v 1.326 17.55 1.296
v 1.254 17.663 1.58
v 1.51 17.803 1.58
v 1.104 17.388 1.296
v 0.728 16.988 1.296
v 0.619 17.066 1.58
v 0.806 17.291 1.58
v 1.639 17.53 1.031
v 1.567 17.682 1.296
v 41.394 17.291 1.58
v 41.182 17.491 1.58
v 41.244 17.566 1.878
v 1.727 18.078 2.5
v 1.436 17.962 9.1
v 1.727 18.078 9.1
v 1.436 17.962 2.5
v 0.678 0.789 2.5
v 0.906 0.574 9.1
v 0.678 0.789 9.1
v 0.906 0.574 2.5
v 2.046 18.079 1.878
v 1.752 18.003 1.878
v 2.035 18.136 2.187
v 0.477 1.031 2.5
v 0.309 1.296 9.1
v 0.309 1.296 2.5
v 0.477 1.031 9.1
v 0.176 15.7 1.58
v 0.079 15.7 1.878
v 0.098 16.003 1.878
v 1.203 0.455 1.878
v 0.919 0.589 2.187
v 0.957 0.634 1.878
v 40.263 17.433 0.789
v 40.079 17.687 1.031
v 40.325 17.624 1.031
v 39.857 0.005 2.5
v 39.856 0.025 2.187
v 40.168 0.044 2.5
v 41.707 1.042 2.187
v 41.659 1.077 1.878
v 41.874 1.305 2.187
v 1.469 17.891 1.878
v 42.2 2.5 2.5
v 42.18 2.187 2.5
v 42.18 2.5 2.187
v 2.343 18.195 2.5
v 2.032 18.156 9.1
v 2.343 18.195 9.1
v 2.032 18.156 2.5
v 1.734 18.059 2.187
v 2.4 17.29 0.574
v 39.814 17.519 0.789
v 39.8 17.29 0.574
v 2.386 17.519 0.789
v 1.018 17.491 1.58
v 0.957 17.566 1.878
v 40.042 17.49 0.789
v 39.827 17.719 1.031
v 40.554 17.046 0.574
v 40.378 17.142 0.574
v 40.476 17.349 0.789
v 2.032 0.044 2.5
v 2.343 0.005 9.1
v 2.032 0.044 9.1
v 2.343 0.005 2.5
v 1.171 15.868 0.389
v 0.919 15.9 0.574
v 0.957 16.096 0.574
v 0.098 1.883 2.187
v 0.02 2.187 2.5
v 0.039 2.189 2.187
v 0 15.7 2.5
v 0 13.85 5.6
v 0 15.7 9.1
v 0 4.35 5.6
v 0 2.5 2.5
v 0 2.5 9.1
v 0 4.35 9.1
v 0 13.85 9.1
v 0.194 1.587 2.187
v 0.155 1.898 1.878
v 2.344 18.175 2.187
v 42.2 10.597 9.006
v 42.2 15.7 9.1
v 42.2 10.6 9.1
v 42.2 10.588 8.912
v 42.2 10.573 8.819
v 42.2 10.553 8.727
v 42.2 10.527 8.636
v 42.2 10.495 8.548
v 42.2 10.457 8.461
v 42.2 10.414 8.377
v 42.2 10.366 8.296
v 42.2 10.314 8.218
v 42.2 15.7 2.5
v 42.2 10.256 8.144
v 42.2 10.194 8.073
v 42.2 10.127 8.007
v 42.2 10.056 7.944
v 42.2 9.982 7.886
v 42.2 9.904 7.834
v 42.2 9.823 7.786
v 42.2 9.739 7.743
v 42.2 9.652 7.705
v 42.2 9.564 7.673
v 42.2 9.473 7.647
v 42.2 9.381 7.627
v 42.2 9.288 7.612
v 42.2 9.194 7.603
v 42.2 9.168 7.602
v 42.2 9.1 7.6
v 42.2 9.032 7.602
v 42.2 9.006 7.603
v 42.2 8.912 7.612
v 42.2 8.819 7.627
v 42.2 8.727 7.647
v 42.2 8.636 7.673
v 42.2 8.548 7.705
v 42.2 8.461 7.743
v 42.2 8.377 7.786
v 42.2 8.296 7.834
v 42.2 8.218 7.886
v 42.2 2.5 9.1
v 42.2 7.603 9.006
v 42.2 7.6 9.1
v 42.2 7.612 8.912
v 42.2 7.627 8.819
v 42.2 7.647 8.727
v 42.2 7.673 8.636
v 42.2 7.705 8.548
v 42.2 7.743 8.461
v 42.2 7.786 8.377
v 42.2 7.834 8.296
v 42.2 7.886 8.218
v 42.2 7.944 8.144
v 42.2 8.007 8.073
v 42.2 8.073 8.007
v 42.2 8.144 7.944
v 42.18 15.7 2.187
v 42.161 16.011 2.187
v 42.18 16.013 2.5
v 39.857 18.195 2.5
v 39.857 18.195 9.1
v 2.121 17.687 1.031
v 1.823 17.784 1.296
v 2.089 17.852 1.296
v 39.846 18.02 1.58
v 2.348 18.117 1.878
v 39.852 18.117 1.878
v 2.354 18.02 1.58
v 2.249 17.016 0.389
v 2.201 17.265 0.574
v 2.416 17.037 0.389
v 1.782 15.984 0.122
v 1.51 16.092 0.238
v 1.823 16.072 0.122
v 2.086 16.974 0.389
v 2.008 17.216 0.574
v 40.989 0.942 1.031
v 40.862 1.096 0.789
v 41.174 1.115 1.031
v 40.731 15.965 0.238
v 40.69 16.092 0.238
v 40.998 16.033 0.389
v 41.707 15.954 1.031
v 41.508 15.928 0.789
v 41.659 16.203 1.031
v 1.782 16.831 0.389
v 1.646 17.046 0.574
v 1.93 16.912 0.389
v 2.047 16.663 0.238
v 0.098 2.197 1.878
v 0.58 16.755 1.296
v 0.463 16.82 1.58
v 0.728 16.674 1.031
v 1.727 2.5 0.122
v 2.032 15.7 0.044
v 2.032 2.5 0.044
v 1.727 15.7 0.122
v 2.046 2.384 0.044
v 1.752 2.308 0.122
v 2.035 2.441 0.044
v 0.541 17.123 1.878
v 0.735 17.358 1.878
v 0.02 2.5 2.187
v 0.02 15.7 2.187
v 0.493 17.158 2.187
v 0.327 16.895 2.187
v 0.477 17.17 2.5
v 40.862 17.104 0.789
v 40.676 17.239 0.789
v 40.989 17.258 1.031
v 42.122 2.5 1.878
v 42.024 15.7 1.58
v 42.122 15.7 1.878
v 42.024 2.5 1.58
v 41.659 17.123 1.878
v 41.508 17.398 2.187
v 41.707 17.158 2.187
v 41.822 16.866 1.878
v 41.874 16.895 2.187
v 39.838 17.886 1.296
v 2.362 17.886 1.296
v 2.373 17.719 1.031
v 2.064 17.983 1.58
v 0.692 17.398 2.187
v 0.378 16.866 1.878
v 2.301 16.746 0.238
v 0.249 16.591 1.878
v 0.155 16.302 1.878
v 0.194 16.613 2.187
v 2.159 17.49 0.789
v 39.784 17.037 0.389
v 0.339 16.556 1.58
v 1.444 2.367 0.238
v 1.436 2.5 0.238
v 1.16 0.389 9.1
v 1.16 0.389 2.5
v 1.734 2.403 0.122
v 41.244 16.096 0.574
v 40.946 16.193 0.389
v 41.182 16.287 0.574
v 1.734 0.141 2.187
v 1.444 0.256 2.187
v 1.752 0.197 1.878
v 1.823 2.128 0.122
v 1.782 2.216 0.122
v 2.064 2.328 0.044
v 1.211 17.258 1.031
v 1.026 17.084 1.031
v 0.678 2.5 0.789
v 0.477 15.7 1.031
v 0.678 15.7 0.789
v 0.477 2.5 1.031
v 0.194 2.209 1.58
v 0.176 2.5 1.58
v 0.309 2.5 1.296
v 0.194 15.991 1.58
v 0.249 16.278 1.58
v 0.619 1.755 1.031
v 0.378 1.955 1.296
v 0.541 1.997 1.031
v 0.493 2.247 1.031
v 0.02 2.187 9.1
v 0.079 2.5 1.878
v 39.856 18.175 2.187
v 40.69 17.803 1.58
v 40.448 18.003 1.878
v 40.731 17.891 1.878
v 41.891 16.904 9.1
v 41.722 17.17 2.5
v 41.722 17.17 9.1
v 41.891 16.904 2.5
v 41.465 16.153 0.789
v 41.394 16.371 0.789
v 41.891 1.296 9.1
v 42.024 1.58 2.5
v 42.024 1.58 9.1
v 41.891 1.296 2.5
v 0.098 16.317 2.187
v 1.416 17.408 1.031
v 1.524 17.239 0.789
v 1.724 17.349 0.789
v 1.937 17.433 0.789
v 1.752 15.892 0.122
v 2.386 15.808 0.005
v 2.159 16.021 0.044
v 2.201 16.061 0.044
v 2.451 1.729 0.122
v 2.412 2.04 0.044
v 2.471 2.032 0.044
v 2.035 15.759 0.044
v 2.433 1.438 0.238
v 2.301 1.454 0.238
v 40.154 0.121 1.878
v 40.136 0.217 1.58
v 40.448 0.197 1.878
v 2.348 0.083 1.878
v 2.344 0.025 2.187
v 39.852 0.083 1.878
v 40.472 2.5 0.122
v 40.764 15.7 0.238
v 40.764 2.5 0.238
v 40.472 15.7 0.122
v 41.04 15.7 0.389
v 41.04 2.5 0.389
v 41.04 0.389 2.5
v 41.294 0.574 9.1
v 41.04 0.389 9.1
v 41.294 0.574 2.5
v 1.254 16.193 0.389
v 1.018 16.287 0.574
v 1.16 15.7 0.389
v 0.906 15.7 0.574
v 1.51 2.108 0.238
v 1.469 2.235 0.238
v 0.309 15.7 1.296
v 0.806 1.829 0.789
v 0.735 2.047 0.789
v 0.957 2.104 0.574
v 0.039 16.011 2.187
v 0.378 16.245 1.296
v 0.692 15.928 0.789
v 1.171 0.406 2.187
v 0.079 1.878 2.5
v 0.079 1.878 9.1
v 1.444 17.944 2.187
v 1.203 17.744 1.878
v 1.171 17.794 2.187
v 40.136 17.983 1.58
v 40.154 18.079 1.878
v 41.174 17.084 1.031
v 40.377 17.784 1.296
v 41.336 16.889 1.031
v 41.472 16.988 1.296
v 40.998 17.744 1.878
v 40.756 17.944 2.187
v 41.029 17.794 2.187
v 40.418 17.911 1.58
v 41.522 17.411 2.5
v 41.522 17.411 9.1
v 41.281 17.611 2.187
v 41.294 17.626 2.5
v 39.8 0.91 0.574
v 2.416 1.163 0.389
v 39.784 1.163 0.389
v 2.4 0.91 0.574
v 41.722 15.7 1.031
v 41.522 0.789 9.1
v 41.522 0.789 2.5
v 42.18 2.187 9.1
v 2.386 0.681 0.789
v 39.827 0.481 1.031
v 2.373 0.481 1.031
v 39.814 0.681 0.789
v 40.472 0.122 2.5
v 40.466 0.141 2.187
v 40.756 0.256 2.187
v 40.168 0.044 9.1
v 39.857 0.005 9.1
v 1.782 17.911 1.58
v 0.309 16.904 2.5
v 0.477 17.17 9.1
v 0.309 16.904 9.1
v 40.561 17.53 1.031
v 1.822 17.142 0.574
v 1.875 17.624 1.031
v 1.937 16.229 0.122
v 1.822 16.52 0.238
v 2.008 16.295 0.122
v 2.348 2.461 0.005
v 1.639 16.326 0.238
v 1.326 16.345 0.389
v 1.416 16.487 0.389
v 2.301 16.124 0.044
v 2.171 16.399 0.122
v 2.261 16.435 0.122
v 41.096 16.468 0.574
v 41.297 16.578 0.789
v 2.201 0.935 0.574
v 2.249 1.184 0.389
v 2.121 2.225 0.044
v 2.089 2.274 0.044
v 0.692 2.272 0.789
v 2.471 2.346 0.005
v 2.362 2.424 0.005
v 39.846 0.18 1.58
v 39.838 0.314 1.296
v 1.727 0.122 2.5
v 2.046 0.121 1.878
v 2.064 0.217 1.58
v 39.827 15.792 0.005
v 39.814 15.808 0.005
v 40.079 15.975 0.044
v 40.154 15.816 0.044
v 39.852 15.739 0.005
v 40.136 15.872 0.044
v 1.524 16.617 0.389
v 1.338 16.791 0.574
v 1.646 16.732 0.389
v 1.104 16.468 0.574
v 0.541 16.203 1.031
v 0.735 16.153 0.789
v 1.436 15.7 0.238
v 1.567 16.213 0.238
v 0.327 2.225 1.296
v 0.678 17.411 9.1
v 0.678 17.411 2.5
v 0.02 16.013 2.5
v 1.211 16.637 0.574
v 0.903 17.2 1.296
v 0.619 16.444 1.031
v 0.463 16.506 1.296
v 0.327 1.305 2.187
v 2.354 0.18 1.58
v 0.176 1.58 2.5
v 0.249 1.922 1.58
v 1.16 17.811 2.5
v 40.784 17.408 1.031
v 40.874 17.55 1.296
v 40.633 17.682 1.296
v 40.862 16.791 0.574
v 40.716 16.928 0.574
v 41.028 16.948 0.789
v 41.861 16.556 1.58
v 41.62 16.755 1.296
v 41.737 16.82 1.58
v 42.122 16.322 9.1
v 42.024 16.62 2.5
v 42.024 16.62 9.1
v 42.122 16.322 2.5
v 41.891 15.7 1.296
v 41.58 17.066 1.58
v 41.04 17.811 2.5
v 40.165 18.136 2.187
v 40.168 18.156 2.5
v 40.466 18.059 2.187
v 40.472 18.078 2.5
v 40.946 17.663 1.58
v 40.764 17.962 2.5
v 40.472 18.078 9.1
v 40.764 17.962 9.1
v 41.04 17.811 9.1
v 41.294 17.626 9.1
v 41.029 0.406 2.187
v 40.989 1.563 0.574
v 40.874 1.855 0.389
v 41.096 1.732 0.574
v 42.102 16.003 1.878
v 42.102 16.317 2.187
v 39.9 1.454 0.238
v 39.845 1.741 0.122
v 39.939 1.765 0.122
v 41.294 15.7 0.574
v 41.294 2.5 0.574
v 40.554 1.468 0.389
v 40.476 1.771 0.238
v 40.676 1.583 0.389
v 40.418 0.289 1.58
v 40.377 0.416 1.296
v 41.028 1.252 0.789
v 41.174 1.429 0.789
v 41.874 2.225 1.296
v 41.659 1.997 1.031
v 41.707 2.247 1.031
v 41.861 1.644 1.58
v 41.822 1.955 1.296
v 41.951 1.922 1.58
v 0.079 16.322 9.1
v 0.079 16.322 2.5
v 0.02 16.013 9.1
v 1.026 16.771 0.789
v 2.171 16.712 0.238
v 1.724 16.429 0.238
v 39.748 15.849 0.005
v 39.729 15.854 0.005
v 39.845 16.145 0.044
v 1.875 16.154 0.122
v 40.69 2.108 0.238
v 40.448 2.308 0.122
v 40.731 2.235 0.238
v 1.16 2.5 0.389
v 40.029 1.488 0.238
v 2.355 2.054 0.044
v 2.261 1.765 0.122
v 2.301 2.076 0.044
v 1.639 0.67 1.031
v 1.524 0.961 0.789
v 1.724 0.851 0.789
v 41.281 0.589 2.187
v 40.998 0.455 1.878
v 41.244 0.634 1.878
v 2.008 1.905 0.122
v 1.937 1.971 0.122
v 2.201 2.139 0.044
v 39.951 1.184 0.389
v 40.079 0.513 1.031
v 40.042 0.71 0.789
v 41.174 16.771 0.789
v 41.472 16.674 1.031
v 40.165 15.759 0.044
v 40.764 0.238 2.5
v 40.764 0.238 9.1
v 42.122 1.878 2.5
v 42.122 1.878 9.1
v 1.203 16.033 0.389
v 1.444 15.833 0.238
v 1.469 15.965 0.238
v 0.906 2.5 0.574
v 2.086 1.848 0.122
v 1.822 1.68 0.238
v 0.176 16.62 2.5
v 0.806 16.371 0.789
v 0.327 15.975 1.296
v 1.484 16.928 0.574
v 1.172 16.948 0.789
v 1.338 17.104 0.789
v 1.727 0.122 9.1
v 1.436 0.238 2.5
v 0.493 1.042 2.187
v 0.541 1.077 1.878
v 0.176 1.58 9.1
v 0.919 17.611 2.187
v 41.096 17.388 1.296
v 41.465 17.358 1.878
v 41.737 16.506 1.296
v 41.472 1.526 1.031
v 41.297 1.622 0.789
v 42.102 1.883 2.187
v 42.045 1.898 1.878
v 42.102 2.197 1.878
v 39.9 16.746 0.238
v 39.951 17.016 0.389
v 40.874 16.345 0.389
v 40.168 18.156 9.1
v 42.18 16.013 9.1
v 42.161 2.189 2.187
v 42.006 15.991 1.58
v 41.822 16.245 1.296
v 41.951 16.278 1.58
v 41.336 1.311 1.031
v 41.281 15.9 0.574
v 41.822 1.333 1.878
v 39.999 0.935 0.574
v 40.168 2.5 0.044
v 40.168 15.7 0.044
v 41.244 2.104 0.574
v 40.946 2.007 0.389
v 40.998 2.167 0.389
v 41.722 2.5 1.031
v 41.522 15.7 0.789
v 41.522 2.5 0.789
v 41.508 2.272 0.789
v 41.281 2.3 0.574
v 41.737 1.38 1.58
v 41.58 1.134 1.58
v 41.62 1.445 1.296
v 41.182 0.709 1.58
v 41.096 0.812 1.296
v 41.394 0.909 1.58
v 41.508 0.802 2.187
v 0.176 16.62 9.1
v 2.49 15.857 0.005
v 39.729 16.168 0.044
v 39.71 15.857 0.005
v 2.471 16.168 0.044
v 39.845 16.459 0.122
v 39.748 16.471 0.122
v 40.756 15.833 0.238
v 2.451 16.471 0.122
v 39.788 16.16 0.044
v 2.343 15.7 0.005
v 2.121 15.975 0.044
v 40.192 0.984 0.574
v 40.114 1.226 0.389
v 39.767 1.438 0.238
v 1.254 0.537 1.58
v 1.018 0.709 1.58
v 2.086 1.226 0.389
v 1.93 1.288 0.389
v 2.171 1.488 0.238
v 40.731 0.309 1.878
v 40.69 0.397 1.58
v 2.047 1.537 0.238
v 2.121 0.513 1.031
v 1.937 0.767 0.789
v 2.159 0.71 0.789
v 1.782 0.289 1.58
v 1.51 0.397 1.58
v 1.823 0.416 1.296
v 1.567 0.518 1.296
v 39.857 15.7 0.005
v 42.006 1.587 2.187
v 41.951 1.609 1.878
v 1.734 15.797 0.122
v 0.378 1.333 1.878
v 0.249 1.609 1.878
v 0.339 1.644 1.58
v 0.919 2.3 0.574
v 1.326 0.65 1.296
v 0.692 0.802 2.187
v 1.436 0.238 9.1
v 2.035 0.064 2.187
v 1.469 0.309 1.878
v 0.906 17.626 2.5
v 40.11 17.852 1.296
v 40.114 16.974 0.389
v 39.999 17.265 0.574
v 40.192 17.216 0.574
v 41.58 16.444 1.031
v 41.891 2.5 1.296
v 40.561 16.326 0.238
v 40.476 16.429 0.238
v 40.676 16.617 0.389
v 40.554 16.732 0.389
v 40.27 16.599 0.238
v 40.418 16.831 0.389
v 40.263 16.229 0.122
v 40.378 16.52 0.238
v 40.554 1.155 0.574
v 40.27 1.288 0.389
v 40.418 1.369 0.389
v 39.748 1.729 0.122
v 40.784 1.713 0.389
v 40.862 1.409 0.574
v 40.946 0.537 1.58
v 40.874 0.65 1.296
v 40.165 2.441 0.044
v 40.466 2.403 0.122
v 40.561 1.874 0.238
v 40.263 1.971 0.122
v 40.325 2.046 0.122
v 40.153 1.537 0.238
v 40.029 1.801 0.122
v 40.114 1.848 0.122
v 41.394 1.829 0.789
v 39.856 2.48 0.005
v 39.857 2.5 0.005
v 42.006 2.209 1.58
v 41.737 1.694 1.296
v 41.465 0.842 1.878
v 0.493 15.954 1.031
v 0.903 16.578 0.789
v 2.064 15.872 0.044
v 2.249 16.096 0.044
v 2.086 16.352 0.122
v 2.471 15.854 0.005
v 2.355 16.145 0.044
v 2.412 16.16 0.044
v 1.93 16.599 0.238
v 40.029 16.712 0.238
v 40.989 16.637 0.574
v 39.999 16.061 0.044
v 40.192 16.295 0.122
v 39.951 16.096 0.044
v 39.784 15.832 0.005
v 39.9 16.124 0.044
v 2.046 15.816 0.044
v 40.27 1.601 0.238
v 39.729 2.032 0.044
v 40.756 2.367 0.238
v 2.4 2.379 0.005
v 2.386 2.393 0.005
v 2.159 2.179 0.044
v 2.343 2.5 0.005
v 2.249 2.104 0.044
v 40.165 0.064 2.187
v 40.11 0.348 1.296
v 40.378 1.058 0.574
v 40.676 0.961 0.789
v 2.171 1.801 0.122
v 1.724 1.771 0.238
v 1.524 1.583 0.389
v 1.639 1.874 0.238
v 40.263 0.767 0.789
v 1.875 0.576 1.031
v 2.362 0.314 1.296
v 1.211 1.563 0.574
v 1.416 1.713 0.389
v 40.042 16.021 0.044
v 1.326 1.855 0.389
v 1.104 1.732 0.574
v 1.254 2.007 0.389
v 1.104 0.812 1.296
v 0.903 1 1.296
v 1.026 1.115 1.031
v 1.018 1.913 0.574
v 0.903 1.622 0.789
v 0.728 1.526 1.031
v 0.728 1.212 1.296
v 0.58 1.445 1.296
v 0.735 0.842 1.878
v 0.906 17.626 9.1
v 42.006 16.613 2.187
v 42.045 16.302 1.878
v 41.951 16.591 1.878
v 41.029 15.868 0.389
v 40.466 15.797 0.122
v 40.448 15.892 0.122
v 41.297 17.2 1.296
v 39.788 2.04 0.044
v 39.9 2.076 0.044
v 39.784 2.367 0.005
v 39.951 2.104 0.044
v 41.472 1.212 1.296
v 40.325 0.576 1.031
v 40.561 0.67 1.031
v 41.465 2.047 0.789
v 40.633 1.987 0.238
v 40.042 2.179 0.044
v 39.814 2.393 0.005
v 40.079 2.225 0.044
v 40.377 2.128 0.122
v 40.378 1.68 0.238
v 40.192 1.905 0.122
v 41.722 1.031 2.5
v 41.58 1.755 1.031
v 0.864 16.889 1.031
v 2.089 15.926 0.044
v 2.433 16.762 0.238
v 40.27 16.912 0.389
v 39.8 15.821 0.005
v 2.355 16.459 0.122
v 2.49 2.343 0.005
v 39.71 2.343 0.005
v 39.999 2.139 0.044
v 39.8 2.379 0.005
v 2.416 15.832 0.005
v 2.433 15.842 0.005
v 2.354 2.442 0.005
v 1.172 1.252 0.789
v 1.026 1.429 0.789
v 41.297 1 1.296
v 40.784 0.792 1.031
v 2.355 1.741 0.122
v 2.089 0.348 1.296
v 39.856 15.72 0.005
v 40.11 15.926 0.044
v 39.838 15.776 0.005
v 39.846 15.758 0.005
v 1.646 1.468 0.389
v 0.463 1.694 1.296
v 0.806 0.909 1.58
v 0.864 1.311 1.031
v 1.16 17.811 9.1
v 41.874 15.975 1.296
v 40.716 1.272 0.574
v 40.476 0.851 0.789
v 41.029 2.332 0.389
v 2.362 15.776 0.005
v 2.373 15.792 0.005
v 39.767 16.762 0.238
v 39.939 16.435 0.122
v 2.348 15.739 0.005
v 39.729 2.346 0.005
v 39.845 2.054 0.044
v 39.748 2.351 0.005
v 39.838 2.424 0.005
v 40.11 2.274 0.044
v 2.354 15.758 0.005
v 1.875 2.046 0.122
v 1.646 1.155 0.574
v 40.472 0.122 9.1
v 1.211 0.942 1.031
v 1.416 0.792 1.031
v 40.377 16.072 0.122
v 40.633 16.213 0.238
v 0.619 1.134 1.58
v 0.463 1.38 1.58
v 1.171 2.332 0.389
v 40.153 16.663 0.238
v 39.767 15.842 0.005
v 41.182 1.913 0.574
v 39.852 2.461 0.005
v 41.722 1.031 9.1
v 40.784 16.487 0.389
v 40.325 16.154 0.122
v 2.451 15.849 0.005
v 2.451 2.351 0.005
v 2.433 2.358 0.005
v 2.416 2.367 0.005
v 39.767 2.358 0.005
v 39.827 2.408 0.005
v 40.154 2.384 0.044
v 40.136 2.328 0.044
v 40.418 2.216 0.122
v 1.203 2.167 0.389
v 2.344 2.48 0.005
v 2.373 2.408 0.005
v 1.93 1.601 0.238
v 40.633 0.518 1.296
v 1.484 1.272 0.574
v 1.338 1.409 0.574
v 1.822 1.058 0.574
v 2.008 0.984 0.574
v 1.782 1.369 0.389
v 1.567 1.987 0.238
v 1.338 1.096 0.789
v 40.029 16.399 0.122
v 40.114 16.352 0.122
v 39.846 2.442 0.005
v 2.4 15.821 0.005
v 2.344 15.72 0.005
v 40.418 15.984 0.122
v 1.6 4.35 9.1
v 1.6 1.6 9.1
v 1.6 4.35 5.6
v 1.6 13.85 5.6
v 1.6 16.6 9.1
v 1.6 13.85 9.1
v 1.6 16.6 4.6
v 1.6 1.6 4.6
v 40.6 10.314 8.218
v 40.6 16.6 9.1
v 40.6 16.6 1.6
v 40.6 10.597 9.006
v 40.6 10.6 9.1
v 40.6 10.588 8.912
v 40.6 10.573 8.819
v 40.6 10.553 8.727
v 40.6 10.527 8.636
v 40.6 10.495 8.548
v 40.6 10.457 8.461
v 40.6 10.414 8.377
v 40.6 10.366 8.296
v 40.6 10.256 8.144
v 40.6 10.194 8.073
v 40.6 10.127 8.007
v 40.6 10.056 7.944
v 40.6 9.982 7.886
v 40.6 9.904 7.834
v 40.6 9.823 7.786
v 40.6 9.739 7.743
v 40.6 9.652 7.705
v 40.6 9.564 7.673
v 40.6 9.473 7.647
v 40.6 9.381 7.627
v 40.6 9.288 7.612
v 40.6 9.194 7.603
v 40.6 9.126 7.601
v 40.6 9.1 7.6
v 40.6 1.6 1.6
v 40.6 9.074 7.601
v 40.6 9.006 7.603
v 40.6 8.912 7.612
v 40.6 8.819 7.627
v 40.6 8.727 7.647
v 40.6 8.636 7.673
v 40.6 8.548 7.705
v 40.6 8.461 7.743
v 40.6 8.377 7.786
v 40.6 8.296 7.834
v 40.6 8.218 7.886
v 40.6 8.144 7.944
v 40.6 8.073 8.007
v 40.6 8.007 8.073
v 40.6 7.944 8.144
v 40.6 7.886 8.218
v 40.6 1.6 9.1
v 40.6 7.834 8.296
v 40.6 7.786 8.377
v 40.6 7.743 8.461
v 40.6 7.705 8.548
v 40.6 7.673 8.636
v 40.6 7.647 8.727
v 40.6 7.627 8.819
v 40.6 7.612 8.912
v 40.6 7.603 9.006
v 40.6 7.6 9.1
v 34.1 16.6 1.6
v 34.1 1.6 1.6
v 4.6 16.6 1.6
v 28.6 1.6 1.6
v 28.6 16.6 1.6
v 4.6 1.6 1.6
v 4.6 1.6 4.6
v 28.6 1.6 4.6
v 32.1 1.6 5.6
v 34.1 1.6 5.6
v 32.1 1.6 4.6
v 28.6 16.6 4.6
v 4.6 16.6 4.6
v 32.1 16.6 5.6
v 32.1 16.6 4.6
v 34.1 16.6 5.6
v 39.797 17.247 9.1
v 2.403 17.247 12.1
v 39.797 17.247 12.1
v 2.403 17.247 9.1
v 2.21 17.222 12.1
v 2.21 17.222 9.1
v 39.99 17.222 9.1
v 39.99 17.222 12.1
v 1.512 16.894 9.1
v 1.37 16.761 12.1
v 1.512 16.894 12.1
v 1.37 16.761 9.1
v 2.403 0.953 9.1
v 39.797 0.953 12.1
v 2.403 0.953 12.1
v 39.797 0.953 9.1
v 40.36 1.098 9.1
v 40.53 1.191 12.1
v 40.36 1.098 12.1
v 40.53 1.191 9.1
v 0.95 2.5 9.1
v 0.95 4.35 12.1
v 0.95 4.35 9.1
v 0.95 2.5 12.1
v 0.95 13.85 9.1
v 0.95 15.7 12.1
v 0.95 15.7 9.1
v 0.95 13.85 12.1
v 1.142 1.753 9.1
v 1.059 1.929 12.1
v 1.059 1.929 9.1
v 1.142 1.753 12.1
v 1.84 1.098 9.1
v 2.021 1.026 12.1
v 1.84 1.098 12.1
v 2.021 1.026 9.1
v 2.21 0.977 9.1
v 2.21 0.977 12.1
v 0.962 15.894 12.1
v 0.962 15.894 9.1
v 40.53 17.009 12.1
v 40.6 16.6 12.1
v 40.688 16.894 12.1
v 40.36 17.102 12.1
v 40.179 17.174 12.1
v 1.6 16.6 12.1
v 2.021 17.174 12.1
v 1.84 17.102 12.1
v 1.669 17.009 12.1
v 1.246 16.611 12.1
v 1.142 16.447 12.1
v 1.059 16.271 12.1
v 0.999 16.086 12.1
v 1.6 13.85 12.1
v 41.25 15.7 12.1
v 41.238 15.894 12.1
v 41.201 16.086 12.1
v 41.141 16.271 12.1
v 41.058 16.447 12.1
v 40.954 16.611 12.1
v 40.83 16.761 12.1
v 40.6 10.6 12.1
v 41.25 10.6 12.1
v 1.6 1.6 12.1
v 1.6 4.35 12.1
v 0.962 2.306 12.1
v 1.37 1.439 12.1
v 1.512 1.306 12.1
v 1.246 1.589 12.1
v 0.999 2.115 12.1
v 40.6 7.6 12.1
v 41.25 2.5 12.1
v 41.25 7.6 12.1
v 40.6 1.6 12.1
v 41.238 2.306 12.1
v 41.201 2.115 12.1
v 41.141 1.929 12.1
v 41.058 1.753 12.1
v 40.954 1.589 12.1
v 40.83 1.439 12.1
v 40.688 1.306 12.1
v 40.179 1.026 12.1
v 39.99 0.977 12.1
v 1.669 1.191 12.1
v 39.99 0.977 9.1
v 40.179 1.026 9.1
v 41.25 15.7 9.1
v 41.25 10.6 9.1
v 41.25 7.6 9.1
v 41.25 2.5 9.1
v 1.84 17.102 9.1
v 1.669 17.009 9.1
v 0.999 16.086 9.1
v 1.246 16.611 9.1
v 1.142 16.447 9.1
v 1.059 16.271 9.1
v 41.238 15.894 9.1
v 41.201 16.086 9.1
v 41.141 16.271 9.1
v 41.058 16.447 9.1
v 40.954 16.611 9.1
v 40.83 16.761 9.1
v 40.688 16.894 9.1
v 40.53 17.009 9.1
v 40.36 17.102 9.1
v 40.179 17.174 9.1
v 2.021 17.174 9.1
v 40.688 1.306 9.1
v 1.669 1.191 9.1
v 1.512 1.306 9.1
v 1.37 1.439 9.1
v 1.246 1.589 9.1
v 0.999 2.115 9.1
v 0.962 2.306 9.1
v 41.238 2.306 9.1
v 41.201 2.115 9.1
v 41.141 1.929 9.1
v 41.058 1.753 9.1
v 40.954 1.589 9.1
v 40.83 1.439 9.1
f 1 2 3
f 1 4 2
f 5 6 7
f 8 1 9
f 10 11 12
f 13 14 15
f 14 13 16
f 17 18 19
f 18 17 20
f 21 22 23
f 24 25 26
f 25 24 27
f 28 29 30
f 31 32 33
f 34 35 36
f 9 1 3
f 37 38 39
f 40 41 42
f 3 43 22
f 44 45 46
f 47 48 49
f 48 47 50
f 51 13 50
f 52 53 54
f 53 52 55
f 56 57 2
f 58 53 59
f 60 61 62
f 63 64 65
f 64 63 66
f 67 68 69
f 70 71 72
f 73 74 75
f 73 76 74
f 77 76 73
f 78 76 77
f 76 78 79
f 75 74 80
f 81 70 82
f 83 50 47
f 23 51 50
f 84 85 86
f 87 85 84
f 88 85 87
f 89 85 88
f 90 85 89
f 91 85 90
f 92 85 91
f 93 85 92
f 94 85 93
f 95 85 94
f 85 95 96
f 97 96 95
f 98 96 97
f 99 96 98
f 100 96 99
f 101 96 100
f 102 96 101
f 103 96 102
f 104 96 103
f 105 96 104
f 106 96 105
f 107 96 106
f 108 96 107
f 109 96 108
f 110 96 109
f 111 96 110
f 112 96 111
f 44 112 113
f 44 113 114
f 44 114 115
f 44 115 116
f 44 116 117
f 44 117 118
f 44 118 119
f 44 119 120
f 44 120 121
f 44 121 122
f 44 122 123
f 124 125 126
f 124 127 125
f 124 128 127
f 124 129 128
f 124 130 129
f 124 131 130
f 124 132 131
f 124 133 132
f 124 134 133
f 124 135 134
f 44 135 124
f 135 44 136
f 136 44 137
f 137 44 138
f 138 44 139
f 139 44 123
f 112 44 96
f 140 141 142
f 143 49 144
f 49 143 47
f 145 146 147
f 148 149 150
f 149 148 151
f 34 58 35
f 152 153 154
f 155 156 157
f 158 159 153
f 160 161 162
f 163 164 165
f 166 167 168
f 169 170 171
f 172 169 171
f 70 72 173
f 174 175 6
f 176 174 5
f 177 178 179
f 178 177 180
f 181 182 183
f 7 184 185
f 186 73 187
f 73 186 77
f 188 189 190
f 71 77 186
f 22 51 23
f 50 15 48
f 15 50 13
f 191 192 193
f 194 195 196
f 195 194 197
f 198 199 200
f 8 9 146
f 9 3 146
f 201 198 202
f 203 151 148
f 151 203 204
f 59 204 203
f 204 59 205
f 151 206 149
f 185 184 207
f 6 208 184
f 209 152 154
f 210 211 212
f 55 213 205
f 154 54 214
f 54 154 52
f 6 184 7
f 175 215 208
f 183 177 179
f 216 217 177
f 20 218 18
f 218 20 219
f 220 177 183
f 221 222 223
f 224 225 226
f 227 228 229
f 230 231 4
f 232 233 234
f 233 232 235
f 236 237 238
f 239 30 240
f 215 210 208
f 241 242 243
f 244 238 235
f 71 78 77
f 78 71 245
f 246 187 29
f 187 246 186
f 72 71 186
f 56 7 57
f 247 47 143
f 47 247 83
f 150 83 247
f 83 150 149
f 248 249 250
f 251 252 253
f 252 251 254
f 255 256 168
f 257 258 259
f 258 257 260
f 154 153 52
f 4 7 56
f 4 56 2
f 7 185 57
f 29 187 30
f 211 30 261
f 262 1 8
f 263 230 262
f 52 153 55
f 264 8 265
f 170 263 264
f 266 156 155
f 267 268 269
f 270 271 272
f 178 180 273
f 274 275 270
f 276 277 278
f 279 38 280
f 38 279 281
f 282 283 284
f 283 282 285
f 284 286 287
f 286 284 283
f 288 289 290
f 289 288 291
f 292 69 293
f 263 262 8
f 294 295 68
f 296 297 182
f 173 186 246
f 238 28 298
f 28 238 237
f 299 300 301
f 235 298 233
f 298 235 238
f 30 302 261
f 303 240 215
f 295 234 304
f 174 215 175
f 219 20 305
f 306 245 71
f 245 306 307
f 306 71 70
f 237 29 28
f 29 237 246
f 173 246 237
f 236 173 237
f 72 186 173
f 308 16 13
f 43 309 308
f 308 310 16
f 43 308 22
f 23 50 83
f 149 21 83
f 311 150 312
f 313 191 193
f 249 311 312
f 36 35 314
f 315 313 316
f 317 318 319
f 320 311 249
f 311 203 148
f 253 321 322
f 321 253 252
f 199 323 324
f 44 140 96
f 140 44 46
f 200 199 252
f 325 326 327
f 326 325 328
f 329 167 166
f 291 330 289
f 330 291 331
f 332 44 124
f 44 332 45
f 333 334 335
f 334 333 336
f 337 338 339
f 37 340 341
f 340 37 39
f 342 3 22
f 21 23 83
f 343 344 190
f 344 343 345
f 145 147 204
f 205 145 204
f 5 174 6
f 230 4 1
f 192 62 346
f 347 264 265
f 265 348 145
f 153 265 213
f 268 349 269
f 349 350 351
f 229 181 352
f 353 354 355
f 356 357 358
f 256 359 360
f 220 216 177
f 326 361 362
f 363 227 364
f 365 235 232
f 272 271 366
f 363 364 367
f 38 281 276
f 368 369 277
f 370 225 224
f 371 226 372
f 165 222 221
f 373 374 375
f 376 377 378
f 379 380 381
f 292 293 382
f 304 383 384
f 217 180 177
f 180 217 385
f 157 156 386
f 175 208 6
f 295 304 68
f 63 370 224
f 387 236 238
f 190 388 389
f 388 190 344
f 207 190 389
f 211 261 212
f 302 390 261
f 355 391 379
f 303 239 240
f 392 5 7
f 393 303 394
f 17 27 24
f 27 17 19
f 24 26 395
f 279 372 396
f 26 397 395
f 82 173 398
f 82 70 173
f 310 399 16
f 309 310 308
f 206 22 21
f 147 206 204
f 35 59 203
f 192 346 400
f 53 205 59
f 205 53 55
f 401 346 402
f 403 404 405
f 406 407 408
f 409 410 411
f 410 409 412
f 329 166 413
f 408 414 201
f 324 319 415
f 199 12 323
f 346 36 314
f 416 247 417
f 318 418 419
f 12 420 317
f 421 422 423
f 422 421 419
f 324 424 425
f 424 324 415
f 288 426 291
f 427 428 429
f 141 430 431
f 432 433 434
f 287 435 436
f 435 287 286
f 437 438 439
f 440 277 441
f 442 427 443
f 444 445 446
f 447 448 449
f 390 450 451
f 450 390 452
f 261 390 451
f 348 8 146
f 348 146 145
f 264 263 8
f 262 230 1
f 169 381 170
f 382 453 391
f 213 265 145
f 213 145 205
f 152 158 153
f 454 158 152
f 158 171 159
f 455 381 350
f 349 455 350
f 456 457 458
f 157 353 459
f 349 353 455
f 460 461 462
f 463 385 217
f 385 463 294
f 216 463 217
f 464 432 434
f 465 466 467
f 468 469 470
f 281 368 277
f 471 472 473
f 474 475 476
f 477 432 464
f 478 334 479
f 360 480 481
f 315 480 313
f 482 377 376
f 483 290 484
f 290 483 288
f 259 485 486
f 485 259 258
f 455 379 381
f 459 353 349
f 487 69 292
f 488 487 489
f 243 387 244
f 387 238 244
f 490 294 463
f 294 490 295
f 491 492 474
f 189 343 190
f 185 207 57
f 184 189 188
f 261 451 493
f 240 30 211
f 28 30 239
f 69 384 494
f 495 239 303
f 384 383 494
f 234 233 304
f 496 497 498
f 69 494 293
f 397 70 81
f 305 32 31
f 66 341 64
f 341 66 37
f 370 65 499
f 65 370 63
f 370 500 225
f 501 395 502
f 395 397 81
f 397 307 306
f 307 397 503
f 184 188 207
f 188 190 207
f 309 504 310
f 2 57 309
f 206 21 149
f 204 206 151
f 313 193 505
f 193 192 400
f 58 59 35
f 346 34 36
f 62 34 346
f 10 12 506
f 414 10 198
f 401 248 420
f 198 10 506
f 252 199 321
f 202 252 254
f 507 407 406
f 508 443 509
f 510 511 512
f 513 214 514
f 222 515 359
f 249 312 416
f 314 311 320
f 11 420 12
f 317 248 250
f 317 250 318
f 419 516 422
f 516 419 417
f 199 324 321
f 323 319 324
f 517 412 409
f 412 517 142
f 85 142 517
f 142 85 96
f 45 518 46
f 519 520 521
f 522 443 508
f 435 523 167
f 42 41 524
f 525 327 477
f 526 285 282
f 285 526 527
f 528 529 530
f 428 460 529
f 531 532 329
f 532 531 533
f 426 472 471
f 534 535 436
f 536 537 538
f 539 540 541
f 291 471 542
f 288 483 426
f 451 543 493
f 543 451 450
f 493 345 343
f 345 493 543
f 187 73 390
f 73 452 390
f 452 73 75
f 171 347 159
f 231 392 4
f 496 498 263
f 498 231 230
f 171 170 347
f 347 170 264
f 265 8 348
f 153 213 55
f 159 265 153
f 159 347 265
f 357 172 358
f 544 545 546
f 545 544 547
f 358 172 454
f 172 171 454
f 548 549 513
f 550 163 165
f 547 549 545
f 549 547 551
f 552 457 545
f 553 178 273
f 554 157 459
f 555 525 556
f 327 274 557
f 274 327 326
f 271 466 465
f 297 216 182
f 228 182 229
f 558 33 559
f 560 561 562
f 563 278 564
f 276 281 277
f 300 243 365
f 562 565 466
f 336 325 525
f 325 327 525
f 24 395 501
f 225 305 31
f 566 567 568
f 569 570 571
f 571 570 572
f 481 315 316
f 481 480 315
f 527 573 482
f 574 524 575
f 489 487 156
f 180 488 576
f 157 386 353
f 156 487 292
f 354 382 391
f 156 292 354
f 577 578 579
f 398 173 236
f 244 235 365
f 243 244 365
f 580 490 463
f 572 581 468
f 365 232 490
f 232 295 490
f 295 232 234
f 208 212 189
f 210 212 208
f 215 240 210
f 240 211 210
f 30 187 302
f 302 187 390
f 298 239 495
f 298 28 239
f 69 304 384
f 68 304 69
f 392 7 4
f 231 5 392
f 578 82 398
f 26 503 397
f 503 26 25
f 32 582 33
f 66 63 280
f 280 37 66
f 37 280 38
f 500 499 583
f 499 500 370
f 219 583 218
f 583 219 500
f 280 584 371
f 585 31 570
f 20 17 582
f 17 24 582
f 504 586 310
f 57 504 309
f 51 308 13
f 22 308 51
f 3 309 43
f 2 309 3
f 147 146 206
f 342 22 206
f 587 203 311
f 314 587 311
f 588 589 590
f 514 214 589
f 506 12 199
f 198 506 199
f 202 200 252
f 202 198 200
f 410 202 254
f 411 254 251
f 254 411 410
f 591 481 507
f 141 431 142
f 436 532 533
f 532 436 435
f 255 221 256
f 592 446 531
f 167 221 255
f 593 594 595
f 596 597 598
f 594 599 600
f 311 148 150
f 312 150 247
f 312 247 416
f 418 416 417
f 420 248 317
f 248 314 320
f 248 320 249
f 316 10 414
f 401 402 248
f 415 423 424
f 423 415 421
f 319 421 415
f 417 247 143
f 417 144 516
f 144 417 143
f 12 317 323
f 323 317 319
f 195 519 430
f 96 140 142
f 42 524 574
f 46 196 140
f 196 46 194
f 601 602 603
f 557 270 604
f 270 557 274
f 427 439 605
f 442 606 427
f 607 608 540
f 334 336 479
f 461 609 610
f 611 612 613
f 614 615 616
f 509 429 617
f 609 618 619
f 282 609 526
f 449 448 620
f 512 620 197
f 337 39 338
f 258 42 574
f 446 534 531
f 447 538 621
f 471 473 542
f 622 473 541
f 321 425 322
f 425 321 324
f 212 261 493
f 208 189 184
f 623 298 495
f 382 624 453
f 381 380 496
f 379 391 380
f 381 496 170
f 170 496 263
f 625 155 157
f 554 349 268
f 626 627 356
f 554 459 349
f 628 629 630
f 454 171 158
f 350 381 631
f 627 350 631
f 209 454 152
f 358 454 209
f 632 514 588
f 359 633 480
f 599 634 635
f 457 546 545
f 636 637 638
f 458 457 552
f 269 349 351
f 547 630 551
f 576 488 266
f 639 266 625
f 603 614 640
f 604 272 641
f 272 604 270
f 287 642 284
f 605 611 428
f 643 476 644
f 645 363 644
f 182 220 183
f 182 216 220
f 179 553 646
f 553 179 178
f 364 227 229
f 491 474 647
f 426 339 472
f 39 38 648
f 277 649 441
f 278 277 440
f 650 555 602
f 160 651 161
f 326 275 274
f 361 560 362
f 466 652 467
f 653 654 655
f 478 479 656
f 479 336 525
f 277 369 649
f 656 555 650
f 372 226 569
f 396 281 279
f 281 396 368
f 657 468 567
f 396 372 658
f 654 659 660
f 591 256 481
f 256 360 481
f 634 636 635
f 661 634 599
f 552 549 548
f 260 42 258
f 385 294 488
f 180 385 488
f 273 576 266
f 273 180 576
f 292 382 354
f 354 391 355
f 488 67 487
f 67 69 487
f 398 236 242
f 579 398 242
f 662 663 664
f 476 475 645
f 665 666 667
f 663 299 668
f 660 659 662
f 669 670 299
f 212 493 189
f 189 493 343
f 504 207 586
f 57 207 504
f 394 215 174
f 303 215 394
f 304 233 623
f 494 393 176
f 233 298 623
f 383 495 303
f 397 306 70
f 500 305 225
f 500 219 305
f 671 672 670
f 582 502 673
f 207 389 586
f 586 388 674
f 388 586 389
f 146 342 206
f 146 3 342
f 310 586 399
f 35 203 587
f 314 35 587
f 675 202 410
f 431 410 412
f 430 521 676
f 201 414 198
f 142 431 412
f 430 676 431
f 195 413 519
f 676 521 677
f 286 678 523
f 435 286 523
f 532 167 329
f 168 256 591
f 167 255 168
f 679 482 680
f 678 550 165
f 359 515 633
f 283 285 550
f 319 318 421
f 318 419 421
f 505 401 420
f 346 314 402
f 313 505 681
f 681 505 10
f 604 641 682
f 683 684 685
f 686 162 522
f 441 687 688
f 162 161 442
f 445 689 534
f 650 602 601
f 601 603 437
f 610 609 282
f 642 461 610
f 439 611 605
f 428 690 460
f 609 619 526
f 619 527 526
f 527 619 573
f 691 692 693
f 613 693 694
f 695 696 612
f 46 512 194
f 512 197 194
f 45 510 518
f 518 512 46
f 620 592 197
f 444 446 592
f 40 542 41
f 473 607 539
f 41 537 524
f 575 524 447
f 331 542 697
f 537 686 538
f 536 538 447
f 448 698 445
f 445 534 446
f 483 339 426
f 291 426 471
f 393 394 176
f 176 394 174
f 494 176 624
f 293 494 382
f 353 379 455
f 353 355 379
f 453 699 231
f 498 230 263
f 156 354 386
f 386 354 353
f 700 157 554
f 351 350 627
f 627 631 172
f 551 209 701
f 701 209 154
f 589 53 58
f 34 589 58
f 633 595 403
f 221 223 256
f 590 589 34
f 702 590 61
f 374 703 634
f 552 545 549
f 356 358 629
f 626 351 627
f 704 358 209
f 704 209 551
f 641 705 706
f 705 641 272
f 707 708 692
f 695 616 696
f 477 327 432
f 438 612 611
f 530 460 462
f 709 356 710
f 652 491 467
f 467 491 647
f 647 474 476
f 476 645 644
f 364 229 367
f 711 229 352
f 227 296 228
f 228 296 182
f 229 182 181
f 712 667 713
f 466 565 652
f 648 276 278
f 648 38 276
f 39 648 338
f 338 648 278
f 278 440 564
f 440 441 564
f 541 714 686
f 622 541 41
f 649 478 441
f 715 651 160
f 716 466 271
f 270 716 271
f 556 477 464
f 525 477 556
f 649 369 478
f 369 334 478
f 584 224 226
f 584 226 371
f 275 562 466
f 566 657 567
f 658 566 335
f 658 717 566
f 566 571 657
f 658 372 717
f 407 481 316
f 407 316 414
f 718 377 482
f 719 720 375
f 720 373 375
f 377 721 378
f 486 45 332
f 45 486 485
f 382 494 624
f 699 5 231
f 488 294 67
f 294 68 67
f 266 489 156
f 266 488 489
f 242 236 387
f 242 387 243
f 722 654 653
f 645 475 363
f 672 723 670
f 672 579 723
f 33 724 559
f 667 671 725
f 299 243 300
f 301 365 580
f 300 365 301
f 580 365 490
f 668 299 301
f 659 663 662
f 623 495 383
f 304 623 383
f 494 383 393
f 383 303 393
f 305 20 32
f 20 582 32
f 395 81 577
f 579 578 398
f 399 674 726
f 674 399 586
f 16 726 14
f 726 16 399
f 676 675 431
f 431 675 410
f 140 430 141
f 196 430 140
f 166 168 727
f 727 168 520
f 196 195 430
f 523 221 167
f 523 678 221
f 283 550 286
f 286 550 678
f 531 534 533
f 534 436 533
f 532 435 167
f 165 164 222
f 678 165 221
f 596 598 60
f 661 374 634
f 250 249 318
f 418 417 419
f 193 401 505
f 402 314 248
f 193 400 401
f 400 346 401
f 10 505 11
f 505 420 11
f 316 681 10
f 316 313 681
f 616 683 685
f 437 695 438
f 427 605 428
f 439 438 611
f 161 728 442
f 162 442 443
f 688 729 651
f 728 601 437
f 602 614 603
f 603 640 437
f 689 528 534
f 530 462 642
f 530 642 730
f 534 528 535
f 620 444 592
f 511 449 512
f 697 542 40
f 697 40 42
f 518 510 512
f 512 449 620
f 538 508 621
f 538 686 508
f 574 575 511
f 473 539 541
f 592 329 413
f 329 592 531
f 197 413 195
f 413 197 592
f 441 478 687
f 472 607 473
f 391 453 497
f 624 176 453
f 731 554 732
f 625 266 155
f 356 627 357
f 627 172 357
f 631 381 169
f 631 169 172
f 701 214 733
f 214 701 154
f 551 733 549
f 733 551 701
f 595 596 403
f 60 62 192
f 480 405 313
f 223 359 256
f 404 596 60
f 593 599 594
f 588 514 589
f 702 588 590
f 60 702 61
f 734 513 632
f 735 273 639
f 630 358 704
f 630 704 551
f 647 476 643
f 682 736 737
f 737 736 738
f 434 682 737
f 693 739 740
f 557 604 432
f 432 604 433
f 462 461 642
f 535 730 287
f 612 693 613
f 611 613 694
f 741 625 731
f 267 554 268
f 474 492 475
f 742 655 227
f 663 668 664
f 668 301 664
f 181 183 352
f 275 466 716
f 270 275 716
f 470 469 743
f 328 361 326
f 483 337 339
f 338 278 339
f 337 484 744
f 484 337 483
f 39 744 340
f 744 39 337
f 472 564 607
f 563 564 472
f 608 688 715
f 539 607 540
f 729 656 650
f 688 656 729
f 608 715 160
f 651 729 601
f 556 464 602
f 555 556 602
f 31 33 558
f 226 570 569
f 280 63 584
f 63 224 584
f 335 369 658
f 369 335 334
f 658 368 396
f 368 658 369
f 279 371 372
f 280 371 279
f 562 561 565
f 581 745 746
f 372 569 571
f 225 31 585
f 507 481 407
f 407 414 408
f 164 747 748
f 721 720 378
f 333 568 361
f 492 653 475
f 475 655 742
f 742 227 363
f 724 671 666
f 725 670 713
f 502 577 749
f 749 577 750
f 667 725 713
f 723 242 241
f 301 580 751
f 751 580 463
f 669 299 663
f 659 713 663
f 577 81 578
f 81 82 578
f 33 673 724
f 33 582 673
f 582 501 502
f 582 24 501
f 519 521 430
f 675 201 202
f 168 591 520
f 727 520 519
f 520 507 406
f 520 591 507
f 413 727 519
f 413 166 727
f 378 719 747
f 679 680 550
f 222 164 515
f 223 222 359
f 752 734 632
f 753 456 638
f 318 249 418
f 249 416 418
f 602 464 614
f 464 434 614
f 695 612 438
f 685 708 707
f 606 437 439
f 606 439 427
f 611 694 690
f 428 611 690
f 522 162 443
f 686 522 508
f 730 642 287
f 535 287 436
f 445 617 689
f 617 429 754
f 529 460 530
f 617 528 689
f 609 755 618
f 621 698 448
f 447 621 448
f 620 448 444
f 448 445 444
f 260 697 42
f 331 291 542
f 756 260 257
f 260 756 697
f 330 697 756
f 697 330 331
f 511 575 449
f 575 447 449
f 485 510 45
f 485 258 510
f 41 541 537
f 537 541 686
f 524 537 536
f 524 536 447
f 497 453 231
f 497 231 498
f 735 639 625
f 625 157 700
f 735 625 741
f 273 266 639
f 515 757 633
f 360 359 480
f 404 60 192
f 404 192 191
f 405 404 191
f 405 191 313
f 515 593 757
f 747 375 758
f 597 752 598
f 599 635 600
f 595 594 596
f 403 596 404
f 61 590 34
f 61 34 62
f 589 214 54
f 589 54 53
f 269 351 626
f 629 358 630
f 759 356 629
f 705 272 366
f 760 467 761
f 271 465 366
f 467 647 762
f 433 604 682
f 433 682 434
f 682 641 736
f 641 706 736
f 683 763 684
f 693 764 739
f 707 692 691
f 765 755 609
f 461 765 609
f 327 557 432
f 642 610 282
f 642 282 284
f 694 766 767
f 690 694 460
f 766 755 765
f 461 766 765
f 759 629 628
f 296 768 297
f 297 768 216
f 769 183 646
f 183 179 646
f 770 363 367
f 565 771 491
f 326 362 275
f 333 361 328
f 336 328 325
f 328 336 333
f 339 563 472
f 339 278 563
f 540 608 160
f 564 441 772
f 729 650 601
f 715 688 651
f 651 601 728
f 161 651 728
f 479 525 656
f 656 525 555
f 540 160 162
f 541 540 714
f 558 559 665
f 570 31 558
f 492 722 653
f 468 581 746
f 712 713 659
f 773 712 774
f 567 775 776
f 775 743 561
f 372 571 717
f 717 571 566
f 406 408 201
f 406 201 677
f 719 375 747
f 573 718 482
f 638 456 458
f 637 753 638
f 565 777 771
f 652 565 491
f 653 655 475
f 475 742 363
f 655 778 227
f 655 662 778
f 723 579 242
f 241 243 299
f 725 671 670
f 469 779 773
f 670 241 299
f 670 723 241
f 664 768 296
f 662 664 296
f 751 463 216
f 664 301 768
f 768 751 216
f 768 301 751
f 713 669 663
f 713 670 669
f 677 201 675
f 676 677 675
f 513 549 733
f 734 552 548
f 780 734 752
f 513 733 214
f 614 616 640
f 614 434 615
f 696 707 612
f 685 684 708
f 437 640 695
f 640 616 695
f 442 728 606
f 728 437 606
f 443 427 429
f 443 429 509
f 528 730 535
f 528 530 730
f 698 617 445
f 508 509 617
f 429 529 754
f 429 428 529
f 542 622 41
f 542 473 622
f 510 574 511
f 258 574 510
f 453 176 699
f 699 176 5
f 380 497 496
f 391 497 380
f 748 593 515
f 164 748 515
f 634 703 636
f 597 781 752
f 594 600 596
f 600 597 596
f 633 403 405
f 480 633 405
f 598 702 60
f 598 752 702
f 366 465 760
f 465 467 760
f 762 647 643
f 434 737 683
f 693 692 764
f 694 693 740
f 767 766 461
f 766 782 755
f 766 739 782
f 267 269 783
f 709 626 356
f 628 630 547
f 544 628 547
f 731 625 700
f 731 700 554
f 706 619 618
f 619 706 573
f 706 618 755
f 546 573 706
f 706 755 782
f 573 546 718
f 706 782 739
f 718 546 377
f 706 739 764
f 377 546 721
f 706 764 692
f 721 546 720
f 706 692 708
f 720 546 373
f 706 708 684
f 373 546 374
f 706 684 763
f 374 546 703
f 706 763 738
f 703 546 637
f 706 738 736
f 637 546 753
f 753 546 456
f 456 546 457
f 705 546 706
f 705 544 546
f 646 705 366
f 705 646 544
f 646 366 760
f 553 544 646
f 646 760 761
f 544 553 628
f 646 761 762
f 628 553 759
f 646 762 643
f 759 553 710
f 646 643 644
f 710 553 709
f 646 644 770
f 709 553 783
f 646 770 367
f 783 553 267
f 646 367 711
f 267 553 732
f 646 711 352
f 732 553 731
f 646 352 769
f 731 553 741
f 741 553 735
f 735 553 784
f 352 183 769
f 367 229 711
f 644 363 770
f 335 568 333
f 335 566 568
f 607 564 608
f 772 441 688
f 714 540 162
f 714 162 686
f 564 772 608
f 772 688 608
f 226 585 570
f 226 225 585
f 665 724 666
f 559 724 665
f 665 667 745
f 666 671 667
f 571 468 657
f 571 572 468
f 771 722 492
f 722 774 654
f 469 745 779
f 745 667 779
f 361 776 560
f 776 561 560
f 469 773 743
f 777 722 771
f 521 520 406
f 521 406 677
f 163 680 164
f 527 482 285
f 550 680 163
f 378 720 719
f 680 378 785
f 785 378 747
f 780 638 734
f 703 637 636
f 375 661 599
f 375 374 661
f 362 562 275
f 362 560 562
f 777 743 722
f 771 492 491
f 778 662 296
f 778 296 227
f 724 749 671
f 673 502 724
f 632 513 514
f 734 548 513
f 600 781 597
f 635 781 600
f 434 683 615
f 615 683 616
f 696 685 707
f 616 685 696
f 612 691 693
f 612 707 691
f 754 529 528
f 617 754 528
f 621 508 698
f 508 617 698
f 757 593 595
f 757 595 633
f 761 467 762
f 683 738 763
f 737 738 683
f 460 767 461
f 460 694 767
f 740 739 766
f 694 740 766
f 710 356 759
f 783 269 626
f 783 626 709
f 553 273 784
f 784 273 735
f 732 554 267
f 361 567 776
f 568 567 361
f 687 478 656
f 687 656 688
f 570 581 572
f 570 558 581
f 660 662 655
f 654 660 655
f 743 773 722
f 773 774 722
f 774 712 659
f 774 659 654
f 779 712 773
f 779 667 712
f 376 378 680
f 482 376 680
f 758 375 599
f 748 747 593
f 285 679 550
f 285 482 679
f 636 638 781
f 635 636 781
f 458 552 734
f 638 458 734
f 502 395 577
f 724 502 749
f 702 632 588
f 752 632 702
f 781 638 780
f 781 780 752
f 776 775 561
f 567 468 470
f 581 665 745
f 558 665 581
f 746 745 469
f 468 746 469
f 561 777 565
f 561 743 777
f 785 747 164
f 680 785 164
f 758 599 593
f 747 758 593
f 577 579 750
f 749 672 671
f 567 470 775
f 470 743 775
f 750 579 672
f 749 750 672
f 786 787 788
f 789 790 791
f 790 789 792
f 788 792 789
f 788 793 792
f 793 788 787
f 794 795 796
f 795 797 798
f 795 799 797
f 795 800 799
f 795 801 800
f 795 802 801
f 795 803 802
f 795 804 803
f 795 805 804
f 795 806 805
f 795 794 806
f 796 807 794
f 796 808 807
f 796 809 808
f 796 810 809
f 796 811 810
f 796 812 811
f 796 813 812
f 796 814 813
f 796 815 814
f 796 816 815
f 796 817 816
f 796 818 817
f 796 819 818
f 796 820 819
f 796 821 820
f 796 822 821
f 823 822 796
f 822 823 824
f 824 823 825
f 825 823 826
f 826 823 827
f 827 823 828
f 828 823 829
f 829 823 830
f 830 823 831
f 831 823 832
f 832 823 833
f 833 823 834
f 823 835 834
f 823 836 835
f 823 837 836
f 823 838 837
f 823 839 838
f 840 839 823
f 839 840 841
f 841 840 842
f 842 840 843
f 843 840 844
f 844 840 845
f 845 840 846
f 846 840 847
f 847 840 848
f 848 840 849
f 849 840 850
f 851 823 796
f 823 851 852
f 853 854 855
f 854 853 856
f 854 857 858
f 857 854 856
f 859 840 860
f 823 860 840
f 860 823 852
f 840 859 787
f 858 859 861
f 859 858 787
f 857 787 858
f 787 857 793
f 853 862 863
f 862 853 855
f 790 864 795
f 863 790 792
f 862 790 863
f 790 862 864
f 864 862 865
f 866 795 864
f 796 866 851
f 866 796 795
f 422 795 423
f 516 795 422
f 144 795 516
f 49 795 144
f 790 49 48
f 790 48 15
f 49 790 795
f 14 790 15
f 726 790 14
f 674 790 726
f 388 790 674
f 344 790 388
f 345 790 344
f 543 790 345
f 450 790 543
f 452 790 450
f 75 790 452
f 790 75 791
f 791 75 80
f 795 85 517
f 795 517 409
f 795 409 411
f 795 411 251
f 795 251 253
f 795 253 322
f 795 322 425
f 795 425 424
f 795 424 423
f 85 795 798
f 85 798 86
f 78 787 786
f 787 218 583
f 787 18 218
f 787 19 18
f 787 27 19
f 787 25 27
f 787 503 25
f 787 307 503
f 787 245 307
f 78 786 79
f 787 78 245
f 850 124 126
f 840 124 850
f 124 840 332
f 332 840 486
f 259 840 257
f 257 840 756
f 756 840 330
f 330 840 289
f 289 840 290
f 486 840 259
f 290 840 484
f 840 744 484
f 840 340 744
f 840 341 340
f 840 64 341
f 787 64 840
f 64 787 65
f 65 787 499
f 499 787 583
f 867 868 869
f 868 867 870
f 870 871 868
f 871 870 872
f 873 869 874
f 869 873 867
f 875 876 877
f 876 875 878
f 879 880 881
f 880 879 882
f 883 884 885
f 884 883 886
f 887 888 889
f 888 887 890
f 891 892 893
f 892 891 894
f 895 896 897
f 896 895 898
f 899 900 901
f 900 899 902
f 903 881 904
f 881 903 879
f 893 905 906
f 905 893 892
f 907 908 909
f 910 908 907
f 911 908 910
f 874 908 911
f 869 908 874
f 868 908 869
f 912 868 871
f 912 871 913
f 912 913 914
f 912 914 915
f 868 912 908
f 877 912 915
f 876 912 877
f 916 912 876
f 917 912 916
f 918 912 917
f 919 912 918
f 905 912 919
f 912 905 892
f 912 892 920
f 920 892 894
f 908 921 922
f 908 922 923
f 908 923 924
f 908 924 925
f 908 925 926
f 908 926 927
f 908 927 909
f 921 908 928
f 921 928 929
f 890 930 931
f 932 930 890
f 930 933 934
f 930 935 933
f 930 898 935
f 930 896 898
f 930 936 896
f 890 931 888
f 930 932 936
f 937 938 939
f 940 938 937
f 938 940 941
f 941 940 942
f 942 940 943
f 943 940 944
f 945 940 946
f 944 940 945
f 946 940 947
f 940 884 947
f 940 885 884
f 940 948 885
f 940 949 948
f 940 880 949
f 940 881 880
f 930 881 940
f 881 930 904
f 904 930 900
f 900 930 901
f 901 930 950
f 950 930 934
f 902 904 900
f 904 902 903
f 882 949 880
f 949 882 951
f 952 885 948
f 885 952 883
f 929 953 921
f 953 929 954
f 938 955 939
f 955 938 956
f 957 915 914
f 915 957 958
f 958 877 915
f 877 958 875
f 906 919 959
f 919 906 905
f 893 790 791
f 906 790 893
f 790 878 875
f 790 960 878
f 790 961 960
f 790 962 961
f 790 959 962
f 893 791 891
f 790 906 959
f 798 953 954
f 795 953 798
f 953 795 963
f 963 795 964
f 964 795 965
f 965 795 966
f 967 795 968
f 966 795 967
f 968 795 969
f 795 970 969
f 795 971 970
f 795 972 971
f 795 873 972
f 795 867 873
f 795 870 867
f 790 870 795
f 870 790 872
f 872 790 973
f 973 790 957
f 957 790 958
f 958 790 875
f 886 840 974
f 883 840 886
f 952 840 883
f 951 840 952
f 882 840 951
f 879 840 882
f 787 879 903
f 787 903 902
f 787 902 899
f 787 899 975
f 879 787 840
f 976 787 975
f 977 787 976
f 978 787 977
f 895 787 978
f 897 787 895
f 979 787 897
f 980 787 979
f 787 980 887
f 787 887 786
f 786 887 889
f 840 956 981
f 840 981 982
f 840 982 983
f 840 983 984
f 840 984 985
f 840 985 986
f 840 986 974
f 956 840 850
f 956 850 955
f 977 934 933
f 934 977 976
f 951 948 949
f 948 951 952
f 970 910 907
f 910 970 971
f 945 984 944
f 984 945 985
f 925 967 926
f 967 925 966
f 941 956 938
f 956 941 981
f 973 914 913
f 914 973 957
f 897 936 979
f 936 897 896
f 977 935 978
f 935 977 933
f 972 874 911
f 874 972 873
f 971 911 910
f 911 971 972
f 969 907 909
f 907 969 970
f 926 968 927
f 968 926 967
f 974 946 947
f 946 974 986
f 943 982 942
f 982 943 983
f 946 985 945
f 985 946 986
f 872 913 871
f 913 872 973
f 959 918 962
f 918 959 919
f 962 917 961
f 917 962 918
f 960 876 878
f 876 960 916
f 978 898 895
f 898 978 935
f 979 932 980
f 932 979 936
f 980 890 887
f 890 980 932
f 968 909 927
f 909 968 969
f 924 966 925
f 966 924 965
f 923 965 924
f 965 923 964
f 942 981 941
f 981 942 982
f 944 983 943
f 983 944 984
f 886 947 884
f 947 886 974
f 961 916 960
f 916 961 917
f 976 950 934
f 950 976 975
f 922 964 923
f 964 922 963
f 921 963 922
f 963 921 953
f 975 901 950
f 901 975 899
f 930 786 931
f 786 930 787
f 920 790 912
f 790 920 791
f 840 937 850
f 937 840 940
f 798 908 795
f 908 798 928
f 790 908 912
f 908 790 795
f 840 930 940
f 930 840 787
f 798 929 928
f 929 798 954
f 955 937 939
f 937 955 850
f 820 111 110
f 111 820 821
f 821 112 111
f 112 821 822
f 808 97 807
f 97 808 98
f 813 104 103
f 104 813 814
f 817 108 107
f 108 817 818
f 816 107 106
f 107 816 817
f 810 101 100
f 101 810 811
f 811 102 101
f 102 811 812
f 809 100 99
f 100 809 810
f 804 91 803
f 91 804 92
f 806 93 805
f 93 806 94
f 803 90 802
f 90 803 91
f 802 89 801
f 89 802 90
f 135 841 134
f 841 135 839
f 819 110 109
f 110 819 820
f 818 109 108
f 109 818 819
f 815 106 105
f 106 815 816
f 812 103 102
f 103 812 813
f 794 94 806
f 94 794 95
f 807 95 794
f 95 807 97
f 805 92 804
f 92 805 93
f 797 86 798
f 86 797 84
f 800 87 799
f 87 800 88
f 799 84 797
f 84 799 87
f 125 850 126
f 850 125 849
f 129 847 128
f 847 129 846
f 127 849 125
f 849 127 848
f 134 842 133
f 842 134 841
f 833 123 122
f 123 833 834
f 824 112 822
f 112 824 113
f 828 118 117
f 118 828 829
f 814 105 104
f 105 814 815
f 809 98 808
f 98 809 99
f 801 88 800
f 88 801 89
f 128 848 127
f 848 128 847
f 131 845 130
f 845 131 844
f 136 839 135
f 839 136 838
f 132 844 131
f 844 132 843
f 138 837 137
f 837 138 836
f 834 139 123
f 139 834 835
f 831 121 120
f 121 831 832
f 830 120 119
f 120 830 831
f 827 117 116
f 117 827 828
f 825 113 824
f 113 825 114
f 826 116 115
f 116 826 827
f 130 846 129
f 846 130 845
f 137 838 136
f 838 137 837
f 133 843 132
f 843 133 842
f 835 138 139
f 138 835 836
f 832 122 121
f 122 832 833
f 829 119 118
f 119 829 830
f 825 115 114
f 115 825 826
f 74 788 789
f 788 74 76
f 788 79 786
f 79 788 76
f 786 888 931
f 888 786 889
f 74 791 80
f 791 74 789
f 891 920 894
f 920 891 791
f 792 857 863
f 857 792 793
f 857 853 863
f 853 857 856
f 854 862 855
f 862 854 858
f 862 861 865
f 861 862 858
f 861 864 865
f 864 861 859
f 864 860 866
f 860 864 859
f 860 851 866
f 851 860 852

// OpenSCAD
//
//  WifiLamp
//  part of Let's make series
//
//  The Cave, 2018
//  https://thecave.cz
//
//  Licensed under MIT License (see LICENSE file for details)
//

$innerX = 39;
$innerY = 15;
$outerZ = 12.1;
$wall = 1.6;
$outerDia = 5;
$dentZ = 3;

$powerWidth = 9.5;


module bottomBase() {
    difference() {
        translate([$outerDia/2,$outerDia/2,$outerDia/2]) minkowski() {
            sphere(d=$outerDia,$fn=50);
            cube([$innerX+$wall*2-$outerDia,$innerY+$wall*2-$outerDia,$outerZ+$outerDia*2]);
        }
        translate([$wall,$wall,$wall]) cube([$innerX,$innerY,$outerZ*2]);
        translate([-1,-1,$outerZ-$dentZ]) cube([$innerX*2,$innerY*2,$outerZ*2]);
    }
}

module bottomDent() {
    translate([$outerDia/2,$outerDia/2,$outerZ-$dentZ]) difference() {
        minkowski() {
            cube([$innerX+$wall-($outerDia-$wall),$innerY+$wall-($outerDia-$wall),$dentZ/2]);
            cylinder(d=$outerDia-$wall-0.3,h=$dentZ/2,$fn=50);
        }
        translate([-$outerDia/2+$wall,-$outerDia/2+$wall,-1]) cube([$innerX,$innerY,$dentZ+2]);
    }
}

module bottomSupports() {
    translate([$wall,$wall,$wall]) cube([3, $innerY, 3]);
    translate([$wall+27,$wall,$wall]) cube([4,$innerY,3]);
    translate([$wall+30.5,$wall,$wall]) cube([2,$innerY,4]);
}

module bottom() {
    difference() {
        union() {
            bottomBase();
            bottomDent();
        }
        translate([$innerX+$wall-1,$wall+$innerY/2,$outerZ-$dentZ]) {
            translate([0,-1.5,0]) cube([$wall+2, 3, 100]);
            rotate([0,90,0]) cylinder(d=3,h=$wall+2,$fn=100);
        }
        translate([-1,$wall+($innerY-$powerWidth)/2,$wall+4]) cube([$wall+2,$powerWidth, 100]);
    }
    bottomSupports();
}

bottom();
